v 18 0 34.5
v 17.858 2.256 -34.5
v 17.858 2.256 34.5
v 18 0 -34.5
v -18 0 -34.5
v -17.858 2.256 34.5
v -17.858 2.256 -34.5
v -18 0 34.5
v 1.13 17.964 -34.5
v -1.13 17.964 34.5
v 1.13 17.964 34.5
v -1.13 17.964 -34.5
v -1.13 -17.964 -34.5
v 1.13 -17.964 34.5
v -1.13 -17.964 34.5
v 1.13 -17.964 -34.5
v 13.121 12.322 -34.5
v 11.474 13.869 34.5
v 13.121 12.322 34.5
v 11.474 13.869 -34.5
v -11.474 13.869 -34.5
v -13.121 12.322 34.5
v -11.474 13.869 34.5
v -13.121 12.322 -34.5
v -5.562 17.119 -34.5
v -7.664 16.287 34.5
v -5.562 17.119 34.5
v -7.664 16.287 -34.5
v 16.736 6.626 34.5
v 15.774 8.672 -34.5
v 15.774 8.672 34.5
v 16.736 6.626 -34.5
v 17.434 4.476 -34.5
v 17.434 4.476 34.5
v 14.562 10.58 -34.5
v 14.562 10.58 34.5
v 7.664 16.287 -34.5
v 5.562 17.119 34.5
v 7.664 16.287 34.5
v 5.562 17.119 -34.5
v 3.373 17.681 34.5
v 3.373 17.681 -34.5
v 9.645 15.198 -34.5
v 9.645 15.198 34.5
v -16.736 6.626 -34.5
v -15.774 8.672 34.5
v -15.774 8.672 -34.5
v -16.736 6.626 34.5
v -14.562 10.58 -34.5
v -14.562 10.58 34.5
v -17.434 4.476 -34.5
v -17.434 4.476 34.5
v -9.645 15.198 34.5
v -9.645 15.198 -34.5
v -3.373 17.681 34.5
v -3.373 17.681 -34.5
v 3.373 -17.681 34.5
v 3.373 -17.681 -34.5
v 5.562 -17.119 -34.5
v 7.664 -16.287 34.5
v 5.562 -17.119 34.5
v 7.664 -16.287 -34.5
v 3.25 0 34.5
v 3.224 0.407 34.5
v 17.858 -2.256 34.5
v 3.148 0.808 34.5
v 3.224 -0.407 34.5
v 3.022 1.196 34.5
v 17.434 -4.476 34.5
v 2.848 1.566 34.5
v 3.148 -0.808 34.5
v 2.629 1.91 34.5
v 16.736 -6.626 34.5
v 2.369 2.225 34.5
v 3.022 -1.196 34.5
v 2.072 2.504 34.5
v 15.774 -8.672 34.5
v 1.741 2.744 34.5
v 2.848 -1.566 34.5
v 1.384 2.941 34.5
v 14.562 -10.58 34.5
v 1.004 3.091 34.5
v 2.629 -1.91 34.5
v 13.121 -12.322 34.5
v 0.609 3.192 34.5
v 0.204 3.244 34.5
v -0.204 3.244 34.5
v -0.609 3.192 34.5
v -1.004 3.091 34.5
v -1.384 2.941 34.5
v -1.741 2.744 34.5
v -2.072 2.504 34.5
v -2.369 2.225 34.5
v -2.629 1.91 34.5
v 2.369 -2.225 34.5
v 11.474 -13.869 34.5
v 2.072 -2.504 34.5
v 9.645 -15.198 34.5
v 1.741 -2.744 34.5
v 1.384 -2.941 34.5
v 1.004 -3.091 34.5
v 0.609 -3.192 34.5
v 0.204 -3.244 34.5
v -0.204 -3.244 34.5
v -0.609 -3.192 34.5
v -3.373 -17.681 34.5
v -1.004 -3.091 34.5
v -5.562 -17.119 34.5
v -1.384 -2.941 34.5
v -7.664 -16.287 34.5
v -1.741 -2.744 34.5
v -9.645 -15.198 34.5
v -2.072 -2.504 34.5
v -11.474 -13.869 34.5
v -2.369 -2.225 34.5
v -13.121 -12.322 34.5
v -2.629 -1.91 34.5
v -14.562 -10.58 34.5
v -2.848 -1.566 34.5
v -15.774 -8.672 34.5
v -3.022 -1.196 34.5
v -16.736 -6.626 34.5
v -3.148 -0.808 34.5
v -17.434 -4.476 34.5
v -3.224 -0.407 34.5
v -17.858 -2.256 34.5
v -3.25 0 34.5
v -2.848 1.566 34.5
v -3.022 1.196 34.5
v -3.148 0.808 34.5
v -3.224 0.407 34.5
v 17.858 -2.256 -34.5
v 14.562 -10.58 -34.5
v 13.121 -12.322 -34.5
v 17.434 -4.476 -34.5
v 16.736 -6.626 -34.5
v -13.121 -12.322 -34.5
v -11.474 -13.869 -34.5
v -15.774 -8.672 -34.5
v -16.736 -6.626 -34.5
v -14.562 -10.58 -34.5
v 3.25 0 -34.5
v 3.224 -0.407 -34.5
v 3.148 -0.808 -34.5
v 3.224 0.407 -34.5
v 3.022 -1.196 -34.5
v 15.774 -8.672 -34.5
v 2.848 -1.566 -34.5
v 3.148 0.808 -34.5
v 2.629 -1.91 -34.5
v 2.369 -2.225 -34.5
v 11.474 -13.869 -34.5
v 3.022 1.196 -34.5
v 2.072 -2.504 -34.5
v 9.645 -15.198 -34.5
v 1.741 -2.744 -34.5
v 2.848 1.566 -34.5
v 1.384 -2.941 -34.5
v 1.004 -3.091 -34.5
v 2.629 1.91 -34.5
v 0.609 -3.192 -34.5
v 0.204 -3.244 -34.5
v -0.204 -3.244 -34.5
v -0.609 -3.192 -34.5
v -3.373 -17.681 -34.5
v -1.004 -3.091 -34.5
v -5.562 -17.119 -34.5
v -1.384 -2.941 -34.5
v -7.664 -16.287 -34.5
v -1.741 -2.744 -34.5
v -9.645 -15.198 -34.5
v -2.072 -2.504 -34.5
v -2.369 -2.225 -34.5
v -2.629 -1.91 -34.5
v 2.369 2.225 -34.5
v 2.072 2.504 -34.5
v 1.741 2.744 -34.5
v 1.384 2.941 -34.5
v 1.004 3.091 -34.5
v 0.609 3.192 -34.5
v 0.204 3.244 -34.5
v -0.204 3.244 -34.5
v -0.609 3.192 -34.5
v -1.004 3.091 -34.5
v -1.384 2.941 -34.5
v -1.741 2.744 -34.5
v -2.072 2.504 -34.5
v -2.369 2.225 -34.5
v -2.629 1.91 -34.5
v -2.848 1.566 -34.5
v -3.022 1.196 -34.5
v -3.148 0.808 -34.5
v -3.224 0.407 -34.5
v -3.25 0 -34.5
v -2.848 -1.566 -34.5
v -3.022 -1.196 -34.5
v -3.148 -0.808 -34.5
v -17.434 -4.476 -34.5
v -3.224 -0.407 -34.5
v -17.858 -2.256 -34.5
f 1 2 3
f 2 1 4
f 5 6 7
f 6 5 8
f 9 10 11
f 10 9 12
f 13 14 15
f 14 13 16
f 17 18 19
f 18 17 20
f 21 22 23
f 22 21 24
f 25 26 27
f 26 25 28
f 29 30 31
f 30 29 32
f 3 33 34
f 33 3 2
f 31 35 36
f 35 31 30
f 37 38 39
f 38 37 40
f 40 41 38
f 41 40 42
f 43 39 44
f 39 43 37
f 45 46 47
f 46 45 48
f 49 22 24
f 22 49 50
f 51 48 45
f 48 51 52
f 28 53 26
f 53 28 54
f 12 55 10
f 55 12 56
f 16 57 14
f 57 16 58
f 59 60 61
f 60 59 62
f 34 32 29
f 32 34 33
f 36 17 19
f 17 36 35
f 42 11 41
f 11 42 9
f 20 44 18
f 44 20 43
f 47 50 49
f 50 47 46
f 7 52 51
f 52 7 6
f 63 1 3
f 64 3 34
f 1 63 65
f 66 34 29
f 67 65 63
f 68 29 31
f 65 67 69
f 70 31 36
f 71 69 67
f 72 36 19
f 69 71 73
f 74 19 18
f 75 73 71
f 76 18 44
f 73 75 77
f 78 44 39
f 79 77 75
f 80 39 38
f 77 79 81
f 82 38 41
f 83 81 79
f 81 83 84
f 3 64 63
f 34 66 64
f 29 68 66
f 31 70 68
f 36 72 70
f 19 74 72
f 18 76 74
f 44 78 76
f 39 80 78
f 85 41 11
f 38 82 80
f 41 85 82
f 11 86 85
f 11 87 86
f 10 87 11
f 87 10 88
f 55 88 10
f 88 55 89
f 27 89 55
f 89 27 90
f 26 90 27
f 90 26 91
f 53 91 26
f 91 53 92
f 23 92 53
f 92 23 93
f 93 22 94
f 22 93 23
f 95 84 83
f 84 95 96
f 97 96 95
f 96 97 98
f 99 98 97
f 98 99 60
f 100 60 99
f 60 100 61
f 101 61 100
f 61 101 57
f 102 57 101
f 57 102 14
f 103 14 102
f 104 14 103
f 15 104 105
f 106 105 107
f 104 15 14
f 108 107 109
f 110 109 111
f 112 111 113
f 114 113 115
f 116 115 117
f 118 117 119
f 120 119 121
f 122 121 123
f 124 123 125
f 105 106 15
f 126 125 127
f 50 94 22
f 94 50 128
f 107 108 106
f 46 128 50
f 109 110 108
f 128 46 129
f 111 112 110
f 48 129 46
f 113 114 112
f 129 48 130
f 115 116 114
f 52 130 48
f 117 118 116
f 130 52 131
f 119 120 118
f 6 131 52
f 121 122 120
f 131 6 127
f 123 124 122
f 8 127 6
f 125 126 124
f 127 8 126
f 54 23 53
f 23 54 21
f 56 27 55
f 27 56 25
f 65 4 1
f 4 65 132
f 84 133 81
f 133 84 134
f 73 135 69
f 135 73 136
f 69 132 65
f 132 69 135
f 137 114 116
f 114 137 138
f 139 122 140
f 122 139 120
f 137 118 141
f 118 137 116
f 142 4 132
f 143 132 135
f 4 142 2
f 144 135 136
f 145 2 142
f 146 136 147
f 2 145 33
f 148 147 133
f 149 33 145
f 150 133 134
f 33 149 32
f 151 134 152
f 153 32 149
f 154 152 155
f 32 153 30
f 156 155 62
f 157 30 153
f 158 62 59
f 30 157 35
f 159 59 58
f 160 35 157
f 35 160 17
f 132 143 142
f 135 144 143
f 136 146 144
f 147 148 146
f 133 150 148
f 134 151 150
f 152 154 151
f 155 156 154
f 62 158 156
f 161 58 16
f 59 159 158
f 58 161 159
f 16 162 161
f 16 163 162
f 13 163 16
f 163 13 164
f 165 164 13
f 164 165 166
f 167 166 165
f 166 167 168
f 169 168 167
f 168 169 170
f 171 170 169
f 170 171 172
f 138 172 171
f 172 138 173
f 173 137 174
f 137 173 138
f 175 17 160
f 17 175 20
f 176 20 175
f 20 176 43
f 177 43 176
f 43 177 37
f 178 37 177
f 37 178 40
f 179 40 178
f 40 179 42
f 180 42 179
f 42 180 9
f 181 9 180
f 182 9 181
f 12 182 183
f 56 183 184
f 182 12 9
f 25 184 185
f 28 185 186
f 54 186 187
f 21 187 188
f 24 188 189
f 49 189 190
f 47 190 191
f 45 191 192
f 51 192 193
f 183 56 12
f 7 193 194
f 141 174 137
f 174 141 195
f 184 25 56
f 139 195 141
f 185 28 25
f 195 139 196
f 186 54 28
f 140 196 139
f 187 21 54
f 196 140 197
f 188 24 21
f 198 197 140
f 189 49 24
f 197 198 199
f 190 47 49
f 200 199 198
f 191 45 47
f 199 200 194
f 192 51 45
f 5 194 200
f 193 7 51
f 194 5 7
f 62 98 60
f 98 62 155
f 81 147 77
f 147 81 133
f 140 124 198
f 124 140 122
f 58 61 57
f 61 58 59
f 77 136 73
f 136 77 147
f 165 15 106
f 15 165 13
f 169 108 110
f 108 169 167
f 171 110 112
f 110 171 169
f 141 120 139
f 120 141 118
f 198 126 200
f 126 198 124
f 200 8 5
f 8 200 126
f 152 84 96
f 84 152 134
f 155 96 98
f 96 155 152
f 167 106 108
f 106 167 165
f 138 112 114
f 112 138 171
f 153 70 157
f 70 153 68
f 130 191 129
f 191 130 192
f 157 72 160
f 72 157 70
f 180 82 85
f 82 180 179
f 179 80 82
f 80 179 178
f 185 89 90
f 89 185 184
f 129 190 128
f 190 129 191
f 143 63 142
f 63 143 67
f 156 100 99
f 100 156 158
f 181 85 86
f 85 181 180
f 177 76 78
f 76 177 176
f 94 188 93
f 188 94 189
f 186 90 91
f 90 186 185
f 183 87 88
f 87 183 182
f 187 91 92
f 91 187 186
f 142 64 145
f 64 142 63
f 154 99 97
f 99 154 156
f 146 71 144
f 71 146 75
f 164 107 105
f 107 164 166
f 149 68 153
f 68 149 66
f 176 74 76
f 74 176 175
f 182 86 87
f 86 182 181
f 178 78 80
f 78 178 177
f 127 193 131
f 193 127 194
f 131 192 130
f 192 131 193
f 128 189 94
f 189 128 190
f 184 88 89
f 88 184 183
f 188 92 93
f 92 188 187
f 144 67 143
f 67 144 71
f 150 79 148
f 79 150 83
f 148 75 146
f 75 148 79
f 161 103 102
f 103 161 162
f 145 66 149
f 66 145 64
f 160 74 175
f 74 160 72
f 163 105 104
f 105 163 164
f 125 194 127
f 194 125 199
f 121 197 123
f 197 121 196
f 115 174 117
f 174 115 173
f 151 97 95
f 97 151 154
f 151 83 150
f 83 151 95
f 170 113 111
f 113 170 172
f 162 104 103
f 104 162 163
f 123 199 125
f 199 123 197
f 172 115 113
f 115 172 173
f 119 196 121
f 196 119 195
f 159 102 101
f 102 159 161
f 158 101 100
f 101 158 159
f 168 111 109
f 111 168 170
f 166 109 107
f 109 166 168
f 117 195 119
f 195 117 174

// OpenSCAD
$fn = 50;


difference() {
	union() {
		translate(v = [0, 0, -34.5000000000]) {
			cylinder(h = 69, r = 18.0000000000);
		}
	}
	union() {
		translate(v = [0, 0, -100.0000000000]) {
			cylinder(h = 200, r = 3.2500000000);
		}
	}
}
